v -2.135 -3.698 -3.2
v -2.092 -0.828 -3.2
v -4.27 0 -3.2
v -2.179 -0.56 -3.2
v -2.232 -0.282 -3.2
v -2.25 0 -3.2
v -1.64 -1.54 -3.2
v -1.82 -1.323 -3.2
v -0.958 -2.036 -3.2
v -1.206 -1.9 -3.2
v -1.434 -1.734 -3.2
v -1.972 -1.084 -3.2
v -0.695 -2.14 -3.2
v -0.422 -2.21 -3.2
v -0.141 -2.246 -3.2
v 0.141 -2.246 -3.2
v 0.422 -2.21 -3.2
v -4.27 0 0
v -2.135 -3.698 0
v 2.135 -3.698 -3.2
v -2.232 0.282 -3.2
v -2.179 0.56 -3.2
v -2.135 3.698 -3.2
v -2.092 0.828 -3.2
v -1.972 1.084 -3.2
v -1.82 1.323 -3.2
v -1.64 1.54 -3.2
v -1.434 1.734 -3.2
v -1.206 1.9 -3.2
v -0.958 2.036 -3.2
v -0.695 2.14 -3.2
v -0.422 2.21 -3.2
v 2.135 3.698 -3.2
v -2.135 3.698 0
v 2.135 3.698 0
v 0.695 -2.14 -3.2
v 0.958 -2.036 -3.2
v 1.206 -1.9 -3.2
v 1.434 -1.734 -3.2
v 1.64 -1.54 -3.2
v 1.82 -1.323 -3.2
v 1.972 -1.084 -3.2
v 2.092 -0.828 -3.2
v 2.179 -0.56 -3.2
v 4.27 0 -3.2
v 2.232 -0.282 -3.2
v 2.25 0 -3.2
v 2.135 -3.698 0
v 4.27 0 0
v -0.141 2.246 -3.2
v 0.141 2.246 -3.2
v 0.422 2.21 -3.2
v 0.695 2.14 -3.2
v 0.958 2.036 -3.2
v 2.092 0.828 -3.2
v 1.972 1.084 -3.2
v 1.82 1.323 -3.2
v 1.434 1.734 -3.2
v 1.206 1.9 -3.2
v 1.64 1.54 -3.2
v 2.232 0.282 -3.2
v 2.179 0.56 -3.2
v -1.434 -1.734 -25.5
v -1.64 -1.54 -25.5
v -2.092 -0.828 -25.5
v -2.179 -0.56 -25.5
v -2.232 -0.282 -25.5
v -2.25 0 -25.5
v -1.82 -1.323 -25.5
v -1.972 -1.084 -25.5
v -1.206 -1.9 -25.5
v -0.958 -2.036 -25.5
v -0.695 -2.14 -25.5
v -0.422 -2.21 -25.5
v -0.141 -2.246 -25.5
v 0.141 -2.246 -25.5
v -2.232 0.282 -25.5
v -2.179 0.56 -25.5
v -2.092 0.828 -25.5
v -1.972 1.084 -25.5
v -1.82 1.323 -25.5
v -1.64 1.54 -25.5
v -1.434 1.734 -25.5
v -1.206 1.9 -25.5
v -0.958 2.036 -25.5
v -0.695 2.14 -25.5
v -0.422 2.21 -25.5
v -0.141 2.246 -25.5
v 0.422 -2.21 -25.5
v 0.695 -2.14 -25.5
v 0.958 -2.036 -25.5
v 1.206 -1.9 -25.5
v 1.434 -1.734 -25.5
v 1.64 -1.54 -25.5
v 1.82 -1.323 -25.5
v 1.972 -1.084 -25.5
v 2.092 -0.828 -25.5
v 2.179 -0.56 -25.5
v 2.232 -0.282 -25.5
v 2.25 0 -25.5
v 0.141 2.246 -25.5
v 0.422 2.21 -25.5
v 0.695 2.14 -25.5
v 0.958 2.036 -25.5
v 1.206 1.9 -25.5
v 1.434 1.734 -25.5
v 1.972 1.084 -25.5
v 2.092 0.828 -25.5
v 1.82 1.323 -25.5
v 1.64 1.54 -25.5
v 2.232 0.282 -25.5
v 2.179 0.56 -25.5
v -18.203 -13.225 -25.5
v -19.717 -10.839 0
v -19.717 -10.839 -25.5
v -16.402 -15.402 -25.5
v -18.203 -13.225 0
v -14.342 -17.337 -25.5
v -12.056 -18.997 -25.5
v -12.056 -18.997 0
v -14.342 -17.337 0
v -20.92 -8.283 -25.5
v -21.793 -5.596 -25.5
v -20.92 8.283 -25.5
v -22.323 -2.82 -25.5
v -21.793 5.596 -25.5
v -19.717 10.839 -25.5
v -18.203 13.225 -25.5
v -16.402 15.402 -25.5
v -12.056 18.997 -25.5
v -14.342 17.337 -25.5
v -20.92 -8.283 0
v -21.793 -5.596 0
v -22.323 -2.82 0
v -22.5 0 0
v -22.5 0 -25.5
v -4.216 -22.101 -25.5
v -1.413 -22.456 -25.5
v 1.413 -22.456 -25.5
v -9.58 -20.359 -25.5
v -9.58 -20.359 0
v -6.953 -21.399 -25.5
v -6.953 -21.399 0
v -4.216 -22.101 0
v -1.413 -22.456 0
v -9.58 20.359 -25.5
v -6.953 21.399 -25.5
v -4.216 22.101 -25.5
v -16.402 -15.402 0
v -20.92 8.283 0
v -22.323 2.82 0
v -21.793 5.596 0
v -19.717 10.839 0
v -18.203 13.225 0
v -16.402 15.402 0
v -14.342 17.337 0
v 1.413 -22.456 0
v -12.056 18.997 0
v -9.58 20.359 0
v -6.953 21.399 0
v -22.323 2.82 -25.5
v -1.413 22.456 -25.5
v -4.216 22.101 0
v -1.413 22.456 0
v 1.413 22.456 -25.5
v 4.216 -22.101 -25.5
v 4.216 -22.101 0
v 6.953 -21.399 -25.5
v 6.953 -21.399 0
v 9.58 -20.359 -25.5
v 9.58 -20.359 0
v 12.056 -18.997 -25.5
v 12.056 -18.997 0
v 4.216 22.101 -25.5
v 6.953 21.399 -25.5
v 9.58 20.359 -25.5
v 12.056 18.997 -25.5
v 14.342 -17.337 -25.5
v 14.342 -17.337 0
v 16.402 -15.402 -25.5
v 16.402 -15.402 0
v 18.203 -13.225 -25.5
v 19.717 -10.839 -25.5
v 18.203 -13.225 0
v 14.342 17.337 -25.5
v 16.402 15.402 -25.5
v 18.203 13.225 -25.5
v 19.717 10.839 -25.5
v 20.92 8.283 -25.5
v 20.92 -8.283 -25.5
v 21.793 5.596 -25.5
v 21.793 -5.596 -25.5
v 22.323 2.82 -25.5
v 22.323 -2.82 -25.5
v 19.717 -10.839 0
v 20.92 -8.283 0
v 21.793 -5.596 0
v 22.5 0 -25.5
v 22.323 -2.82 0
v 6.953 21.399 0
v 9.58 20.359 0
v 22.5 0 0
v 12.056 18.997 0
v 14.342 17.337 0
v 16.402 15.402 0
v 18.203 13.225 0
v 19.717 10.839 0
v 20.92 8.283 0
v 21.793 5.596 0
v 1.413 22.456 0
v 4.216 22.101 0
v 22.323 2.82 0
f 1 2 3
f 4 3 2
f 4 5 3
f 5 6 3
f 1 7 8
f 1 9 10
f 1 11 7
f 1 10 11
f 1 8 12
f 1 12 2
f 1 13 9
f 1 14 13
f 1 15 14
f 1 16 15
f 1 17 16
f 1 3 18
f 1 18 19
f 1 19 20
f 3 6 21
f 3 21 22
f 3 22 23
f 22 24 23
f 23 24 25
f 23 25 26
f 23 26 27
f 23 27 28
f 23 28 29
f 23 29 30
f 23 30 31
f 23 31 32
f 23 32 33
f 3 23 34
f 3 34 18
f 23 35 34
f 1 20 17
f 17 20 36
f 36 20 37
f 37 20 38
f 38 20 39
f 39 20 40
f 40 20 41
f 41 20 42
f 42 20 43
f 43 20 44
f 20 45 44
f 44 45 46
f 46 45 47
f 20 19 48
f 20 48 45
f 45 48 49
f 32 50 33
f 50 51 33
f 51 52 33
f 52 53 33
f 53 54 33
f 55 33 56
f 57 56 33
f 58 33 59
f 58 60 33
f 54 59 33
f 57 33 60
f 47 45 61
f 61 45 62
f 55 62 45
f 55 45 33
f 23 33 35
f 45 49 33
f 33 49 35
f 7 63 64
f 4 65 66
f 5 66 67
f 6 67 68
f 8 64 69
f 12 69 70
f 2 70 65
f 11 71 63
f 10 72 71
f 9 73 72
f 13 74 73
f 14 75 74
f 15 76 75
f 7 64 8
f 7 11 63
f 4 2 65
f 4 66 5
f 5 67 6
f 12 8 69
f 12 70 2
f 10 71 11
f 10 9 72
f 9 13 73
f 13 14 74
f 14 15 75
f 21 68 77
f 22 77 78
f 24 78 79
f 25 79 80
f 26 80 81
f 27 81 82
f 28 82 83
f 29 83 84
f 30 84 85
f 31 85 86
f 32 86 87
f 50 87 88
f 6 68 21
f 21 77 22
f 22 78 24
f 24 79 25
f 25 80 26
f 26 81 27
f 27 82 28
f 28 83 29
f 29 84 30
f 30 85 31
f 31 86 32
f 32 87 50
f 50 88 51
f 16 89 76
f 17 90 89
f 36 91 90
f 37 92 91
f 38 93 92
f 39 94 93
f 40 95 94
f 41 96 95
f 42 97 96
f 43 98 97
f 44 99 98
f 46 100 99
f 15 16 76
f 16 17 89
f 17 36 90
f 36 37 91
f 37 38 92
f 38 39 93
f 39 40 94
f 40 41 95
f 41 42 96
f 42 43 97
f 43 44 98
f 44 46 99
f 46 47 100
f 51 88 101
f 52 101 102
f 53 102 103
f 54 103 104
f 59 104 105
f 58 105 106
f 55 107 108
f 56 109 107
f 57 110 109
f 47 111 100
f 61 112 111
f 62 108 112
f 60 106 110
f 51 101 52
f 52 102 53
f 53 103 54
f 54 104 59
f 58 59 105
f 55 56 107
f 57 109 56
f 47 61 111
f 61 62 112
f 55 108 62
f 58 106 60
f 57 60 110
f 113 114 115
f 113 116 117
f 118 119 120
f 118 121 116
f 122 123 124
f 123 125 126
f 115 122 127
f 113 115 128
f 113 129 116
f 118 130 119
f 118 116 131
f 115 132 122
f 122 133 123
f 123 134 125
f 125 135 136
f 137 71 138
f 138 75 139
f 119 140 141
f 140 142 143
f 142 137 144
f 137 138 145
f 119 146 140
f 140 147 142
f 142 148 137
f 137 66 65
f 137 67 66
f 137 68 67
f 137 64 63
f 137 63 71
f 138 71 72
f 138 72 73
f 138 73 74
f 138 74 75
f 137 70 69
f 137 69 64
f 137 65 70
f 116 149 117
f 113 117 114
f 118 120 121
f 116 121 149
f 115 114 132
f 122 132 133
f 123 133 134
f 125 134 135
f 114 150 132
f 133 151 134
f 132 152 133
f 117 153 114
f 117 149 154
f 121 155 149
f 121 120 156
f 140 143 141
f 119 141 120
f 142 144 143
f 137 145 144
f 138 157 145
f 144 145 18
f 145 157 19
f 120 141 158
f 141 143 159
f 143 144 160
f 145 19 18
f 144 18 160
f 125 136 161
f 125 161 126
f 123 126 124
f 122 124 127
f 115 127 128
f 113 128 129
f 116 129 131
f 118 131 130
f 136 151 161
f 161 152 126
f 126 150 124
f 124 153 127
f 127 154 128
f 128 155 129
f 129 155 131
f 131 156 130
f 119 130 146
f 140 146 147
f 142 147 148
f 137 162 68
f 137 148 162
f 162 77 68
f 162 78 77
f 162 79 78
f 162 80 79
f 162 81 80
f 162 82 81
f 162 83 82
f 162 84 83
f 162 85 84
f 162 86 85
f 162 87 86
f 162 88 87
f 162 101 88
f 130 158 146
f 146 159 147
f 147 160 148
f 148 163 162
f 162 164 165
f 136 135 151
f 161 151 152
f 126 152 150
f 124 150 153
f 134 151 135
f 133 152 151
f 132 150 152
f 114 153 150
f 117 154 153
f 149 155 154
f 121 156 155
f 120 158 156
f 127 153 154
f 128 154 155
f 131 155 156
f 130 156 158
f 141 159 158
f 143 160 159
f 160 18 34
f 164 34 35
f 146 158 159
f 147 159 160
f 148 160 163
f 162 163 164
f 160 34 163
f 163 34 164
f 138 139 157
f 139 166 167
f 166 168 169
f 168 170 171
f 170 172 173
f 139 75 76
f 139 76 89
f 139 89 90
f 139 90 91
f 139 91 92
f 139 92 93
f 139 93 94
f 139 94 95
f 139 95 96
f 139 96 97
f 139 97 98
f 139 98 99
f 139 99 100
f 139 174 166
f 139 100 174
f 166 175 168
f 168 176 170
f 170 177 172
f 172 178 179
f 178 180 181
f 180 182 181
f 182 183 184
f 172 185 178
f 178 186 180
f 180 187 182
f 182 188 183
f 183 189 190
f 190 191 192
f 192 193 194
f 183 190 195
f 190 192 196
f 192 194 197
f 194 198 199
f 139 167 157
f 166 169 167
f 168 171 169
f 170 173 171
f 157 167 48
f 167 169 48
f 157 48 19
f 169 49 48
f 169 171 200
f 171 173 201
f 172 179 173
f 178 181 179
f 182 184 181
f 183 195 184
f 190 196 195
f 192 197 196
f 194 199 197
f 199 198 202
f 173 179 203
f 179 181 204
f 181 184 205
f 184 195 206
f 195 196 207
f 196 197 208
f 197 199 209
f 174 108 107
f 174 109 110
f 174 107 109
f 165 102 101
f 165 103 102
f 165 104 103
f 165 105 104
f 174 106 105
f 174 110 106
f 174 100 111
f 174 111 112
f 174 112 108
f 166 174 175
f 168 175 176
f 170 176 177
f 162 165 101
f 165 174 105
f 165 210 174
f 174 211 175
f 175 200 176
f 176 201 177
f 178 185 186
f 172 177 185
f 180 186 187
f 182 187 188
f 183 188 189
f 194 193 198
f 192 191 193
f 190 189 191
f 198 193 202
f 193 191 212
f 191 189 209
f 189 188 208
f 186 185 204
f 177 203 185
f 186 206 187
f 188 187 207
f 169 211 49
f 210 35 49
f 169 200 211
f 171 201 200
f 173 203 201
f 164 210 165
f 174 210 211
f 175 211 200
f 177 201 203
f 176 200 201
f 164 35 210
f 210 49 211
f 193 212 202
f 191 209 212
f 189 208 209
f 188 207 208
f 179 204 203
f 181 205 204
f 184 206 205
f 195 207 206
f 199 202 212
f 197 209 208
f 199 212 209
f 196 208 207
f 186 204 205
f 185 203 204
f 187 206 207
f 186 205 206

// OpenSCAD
$fn = 50;

difference() {
	union() {
		translate(v = [0, 0, -25.5]) {
			cylinder(h = 25.5, r = 22.5);
		}
	}
	union() {
		translate(v = [0, 0, 0]) {
			rotate(a = [0, 0, 0]) {
				difference() {
					union() {
						translate(v = [0, 0, -3.2]) {
							linear_extrude(height = 3.2) {
								polygon(points = [[4.2698, 0.0], [2.1349000000000005, 3.697755269078796], [-2.134899999999999, 3.6977552690787965], [-4.2698, 5.228996902999369e-16], [-2.134900000000002, -3.6977552690787956], [2.1348999999999974, -3.697755269078798]]);
							}
						}
					}
					union();
				}
			}
		}
		#translate(v = [0, 0, -100.0]) {
			cylinder(h = 200, r = 2.25);
		}
	}
}
